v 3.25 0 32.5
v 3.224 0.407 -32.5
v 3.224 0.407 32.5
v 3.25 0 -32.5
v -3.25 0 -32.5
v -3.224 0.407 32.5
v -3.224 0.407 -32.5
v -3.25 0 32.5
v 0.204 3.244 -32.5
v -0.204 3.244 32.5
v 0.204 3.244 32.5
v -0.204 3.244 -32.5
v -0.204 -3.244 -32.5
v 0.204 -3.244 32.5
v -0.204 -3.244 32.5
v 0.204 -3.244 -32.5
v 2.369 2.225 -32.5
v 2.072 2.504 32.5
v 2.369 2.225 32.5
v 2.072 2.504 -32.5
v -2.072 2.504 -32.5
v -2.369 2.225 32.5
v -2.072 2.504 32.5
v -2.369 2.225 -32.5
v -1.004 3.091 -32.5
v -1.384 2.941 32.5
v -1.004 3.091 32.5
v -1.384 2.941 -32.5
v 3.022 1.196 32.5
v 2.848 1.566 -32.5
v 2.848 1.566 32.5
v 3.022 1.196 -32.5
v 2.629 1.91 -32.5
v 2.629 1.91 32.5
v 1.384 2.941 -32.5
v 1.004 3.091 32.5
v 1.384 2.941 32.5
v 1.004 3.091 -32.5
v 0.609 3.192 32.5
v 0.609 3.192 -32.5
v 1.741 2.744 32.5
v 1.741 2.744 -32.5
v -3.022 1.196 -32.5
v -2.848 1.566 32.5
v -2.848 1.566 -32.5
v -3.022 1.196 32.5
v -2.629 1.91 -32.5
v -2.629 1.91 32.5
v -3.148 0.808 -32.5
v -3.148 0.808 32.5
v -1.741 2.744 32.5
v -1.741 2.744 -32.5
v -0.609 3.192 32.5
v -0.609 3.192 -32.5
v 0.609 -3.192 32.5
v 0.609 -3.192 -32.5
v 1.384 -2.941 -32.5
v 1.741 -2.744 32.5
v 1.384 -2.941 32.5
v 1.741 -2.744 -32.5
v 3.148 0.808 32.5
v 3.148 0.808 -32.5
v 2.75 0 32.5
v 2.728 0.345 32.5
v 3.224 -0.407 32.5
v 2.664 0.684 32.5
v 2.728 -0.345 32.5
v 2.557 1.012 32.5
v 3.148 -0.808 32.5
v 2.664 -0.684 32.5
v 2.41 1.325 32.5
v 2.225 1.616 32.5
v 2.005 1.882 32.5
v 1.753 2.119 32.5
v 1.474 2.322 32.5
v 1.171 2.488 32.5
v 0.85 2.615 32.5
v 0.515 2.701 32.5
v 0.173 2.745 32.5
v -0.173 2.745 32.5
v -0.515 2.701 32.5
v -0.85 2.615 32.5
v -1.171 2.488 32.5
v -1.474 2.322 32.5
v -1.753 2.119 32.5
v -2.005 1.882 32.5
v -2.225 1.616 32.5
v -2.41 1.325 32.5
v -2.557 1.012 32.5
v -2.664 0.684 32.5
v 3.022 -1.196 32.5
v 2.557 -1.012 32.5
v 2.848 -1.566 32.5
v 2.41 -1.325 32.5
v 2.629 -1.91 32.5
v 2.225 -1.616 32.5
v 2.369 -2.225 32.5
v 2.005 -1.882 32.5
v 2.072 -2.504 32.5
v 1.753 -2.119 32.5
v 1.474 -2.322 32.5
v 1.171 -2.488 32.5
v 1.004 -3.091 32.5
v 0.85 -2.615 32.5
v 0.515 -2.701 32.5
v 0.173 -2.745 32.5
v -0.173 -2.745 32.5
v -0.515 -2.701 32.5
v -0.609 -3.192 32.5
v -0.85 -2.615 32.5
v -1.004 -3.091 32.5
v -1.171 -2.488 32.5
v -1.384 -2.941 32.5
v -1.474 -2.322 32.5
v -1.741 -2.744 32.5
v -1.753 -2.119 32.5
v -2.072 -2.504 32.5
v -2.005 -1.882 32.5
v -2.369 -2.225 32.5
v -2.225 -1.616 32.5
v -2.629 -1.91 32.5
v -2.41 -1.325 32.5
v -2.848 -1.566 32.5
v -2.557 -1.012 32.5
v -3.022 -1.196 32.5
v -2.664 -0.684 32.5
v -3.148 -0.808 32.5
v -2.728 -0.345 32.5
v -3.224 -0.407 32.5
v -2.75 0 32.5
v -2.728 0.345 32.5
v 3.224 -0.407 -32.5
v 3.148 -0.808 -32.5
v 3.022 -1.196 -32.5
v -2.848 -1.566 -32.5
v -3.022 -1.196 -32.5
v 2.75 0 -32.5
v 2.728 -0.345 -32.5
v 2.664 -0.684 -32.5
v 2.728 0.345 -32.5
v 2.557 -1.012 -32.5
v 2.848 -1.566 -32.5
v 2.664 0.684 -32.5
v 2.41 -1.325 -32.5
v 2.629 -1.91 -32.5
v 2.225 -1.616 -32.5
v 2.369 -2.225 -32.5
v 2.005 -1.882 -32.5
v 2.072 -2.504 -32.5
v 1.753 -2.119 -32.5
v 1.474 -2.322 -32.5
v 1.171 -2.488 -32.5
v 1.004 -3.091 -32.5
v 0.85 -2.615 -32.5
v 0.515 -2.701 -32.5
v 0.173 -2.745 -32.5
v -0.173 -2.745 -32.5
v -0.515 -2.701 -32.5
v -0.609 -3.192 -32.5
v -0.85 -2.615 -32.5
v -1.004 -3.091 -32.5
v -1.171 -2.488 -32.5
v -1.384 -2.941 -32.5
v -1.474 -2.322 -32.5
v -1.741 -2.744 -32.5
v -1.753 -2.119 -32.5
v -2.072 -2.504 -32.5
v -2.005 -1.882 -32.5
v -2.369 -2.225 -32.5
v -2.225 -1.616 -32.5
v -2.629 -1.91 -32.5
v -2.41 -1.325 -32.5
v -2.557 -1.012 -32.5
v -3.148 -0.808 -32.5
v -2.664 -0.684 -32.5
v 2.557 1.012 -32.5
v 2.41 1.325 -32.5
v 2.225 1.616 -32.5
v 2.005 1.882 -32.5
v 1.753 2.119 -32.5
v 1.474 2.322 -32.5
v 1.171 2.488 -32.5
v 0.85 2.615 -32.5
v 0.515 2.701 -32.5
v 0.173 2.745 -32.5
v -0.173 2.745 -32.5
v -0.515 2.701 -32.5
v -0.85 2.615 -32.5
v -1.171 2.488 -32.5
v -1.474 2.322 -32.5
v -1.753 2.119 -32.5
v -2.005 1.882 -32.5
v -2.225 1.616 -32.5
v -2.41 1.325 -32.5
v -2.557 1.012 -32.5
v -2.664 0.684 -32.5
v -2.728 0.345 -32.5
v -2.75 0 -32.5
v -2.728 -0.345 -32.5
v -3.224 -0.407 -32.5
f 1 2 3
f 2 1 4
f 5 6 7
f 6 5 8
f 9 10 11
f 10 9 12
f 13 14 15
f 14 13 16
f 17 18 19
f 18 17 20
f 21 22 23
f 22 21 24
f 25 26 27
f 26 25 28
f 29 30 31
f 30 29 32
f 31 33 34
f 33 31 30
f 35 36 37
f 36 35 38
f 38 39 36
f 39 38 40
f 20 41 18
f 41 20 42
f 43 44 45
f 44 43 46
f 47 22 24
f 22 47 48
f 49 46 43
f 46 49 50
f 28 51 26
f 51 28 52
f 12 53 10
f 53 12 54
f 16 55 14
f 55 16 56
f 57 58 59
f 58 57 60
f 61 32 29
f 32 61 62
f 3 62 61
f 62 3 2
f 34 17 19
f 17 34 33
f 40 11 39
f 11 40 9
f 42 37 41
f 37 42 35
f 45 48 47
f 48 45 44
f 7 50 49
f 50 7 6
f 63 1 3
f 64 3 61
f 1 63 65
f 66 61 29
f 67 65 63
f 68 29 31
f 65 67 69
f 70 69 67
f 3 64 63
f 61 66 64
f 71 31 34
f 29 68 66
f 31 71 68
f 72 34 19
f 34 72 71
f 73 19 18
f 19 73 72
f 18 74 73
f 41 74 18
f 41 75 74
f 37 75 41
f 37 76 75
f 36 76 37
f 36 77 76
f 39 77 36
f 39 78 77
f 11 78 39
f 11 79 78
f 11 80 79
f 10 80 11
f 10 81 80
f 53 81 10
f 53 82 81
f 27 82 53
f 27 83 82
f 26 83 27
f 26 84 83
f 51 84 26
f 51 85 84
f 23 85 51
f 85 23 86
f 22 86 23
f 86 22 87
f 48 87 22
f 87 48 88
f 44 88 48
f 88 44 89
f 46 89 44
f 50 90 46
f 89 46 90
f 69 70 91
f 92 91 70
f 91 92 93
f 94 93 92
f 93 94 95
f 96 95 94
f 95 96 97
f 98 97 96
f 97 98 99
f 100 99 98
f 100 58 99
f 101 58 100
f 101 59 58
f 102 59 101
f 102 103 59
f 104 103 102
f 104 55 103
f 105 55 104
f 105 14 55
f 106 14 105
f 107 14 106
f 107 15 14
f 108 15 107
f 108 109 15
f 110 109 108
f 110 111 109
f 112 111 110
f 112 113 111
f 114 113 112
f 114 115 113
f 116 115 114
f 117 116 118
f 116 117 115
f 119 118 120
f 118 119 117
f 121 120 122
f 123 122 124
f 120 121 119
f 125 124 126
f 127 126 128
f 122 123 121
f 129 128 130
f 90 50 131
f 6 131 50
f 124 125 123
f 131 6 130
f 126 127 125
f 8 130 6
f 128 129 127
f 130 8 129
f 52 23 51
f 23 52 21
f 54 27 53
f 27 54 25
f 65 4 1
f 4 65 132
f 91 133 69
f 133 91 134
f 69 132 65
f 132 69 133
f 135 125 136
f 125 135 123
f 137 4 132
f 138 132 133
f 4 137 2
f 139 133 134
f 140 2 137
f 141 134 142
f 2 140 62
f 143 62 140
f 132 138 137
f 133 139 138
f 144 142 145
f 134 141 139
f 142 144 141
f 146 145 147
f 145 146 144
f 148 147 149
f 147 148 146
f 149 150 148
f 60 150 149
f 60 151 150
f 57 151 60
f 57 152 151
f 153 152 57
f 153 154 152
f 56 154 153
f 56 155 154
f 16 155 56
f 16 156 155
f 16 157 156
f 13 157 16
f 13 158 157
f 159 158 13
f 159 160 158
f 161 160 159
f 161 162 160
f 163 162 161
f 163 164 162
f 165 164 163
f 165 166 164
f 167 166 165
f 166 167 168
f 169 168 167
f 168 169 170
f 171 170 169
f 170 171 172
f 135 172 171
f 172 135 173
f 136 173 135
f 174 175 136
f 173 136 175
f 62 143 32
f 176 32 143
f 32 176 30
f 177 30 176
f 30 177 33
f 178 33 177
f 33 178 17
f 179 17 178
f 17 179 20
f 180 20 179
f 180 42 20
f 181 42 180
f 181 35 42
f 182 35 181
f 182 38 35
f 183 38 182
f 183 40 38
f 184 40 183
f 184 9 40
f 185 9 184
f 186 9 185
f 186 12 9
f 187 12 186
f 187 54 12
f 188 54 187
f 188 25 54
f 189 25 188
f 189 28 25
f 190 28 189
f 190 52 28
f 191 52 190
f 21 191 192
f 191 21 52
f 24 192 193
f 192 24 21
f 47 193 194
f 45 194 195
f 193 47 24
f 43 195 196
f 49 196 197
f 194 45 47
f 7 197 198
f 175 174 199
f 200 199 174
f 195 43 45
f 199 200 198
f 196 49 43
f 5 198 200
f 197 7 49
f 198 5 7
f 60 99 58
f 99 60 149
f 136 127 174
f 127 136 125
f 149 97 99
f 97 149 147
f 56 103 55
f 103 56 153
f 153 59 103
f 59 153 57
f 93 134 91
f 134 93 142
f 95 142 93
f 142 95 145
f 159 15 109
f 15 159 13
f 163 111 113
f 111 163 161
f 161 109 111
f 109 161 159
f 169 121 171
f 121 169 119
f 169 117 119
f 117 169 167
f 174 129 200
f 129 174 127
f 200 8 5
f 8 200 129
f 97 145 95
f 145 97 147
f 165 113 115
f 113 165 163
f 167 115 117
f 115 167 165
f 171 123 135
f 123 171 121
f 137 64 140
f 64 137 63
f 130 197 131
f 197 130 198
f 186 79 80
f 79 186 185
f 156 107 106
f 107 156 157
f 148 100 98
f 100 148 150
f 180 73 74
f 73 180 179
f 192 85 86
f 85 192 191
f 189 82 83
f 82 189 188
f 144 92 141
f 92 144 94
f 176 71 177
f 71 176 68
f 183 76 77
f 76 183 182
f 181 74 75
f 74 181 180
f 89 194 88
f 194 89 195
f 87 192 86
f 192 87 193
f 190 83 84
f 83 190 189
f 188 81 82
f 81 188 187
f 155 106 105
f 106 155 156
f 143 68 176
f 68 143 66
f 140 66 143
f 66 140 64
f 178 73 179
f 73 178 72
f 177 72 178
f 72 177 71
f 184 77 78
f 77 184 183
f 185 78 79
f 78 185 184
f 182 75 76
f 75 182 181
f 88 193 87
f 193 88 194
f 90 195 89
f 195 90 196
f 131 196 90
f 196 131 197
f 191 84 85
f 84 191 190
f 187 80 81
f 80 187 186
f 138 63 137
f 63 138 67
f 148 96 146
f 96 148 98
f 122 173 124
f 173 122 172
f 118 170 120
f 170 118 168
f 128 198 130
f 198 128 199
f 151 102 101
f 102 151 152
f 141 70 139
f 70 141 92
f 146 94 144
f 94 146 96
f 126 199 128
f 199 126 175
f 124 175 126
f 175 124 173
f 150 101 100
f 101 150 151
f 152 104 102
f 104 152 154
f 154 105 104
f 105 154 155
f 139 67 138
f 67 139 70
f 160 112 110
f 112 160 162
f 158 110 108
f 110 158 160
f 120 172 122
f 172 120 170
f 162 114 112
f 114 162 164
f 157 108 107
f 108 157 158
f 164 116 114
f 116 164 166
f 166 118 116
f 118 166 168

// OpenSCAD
$fn = 50;


difference() {
	union() {
		translate(v = [0, 0, -32.5000000000]) {
			cylinder(h = 65, r = 3.2500000000);
		}
	}
	union() {
		translate(v = [0, 0, -100.0000000000]) {
			cylinder(h = 200, r = 2.7500000000);
		}
	}
}
